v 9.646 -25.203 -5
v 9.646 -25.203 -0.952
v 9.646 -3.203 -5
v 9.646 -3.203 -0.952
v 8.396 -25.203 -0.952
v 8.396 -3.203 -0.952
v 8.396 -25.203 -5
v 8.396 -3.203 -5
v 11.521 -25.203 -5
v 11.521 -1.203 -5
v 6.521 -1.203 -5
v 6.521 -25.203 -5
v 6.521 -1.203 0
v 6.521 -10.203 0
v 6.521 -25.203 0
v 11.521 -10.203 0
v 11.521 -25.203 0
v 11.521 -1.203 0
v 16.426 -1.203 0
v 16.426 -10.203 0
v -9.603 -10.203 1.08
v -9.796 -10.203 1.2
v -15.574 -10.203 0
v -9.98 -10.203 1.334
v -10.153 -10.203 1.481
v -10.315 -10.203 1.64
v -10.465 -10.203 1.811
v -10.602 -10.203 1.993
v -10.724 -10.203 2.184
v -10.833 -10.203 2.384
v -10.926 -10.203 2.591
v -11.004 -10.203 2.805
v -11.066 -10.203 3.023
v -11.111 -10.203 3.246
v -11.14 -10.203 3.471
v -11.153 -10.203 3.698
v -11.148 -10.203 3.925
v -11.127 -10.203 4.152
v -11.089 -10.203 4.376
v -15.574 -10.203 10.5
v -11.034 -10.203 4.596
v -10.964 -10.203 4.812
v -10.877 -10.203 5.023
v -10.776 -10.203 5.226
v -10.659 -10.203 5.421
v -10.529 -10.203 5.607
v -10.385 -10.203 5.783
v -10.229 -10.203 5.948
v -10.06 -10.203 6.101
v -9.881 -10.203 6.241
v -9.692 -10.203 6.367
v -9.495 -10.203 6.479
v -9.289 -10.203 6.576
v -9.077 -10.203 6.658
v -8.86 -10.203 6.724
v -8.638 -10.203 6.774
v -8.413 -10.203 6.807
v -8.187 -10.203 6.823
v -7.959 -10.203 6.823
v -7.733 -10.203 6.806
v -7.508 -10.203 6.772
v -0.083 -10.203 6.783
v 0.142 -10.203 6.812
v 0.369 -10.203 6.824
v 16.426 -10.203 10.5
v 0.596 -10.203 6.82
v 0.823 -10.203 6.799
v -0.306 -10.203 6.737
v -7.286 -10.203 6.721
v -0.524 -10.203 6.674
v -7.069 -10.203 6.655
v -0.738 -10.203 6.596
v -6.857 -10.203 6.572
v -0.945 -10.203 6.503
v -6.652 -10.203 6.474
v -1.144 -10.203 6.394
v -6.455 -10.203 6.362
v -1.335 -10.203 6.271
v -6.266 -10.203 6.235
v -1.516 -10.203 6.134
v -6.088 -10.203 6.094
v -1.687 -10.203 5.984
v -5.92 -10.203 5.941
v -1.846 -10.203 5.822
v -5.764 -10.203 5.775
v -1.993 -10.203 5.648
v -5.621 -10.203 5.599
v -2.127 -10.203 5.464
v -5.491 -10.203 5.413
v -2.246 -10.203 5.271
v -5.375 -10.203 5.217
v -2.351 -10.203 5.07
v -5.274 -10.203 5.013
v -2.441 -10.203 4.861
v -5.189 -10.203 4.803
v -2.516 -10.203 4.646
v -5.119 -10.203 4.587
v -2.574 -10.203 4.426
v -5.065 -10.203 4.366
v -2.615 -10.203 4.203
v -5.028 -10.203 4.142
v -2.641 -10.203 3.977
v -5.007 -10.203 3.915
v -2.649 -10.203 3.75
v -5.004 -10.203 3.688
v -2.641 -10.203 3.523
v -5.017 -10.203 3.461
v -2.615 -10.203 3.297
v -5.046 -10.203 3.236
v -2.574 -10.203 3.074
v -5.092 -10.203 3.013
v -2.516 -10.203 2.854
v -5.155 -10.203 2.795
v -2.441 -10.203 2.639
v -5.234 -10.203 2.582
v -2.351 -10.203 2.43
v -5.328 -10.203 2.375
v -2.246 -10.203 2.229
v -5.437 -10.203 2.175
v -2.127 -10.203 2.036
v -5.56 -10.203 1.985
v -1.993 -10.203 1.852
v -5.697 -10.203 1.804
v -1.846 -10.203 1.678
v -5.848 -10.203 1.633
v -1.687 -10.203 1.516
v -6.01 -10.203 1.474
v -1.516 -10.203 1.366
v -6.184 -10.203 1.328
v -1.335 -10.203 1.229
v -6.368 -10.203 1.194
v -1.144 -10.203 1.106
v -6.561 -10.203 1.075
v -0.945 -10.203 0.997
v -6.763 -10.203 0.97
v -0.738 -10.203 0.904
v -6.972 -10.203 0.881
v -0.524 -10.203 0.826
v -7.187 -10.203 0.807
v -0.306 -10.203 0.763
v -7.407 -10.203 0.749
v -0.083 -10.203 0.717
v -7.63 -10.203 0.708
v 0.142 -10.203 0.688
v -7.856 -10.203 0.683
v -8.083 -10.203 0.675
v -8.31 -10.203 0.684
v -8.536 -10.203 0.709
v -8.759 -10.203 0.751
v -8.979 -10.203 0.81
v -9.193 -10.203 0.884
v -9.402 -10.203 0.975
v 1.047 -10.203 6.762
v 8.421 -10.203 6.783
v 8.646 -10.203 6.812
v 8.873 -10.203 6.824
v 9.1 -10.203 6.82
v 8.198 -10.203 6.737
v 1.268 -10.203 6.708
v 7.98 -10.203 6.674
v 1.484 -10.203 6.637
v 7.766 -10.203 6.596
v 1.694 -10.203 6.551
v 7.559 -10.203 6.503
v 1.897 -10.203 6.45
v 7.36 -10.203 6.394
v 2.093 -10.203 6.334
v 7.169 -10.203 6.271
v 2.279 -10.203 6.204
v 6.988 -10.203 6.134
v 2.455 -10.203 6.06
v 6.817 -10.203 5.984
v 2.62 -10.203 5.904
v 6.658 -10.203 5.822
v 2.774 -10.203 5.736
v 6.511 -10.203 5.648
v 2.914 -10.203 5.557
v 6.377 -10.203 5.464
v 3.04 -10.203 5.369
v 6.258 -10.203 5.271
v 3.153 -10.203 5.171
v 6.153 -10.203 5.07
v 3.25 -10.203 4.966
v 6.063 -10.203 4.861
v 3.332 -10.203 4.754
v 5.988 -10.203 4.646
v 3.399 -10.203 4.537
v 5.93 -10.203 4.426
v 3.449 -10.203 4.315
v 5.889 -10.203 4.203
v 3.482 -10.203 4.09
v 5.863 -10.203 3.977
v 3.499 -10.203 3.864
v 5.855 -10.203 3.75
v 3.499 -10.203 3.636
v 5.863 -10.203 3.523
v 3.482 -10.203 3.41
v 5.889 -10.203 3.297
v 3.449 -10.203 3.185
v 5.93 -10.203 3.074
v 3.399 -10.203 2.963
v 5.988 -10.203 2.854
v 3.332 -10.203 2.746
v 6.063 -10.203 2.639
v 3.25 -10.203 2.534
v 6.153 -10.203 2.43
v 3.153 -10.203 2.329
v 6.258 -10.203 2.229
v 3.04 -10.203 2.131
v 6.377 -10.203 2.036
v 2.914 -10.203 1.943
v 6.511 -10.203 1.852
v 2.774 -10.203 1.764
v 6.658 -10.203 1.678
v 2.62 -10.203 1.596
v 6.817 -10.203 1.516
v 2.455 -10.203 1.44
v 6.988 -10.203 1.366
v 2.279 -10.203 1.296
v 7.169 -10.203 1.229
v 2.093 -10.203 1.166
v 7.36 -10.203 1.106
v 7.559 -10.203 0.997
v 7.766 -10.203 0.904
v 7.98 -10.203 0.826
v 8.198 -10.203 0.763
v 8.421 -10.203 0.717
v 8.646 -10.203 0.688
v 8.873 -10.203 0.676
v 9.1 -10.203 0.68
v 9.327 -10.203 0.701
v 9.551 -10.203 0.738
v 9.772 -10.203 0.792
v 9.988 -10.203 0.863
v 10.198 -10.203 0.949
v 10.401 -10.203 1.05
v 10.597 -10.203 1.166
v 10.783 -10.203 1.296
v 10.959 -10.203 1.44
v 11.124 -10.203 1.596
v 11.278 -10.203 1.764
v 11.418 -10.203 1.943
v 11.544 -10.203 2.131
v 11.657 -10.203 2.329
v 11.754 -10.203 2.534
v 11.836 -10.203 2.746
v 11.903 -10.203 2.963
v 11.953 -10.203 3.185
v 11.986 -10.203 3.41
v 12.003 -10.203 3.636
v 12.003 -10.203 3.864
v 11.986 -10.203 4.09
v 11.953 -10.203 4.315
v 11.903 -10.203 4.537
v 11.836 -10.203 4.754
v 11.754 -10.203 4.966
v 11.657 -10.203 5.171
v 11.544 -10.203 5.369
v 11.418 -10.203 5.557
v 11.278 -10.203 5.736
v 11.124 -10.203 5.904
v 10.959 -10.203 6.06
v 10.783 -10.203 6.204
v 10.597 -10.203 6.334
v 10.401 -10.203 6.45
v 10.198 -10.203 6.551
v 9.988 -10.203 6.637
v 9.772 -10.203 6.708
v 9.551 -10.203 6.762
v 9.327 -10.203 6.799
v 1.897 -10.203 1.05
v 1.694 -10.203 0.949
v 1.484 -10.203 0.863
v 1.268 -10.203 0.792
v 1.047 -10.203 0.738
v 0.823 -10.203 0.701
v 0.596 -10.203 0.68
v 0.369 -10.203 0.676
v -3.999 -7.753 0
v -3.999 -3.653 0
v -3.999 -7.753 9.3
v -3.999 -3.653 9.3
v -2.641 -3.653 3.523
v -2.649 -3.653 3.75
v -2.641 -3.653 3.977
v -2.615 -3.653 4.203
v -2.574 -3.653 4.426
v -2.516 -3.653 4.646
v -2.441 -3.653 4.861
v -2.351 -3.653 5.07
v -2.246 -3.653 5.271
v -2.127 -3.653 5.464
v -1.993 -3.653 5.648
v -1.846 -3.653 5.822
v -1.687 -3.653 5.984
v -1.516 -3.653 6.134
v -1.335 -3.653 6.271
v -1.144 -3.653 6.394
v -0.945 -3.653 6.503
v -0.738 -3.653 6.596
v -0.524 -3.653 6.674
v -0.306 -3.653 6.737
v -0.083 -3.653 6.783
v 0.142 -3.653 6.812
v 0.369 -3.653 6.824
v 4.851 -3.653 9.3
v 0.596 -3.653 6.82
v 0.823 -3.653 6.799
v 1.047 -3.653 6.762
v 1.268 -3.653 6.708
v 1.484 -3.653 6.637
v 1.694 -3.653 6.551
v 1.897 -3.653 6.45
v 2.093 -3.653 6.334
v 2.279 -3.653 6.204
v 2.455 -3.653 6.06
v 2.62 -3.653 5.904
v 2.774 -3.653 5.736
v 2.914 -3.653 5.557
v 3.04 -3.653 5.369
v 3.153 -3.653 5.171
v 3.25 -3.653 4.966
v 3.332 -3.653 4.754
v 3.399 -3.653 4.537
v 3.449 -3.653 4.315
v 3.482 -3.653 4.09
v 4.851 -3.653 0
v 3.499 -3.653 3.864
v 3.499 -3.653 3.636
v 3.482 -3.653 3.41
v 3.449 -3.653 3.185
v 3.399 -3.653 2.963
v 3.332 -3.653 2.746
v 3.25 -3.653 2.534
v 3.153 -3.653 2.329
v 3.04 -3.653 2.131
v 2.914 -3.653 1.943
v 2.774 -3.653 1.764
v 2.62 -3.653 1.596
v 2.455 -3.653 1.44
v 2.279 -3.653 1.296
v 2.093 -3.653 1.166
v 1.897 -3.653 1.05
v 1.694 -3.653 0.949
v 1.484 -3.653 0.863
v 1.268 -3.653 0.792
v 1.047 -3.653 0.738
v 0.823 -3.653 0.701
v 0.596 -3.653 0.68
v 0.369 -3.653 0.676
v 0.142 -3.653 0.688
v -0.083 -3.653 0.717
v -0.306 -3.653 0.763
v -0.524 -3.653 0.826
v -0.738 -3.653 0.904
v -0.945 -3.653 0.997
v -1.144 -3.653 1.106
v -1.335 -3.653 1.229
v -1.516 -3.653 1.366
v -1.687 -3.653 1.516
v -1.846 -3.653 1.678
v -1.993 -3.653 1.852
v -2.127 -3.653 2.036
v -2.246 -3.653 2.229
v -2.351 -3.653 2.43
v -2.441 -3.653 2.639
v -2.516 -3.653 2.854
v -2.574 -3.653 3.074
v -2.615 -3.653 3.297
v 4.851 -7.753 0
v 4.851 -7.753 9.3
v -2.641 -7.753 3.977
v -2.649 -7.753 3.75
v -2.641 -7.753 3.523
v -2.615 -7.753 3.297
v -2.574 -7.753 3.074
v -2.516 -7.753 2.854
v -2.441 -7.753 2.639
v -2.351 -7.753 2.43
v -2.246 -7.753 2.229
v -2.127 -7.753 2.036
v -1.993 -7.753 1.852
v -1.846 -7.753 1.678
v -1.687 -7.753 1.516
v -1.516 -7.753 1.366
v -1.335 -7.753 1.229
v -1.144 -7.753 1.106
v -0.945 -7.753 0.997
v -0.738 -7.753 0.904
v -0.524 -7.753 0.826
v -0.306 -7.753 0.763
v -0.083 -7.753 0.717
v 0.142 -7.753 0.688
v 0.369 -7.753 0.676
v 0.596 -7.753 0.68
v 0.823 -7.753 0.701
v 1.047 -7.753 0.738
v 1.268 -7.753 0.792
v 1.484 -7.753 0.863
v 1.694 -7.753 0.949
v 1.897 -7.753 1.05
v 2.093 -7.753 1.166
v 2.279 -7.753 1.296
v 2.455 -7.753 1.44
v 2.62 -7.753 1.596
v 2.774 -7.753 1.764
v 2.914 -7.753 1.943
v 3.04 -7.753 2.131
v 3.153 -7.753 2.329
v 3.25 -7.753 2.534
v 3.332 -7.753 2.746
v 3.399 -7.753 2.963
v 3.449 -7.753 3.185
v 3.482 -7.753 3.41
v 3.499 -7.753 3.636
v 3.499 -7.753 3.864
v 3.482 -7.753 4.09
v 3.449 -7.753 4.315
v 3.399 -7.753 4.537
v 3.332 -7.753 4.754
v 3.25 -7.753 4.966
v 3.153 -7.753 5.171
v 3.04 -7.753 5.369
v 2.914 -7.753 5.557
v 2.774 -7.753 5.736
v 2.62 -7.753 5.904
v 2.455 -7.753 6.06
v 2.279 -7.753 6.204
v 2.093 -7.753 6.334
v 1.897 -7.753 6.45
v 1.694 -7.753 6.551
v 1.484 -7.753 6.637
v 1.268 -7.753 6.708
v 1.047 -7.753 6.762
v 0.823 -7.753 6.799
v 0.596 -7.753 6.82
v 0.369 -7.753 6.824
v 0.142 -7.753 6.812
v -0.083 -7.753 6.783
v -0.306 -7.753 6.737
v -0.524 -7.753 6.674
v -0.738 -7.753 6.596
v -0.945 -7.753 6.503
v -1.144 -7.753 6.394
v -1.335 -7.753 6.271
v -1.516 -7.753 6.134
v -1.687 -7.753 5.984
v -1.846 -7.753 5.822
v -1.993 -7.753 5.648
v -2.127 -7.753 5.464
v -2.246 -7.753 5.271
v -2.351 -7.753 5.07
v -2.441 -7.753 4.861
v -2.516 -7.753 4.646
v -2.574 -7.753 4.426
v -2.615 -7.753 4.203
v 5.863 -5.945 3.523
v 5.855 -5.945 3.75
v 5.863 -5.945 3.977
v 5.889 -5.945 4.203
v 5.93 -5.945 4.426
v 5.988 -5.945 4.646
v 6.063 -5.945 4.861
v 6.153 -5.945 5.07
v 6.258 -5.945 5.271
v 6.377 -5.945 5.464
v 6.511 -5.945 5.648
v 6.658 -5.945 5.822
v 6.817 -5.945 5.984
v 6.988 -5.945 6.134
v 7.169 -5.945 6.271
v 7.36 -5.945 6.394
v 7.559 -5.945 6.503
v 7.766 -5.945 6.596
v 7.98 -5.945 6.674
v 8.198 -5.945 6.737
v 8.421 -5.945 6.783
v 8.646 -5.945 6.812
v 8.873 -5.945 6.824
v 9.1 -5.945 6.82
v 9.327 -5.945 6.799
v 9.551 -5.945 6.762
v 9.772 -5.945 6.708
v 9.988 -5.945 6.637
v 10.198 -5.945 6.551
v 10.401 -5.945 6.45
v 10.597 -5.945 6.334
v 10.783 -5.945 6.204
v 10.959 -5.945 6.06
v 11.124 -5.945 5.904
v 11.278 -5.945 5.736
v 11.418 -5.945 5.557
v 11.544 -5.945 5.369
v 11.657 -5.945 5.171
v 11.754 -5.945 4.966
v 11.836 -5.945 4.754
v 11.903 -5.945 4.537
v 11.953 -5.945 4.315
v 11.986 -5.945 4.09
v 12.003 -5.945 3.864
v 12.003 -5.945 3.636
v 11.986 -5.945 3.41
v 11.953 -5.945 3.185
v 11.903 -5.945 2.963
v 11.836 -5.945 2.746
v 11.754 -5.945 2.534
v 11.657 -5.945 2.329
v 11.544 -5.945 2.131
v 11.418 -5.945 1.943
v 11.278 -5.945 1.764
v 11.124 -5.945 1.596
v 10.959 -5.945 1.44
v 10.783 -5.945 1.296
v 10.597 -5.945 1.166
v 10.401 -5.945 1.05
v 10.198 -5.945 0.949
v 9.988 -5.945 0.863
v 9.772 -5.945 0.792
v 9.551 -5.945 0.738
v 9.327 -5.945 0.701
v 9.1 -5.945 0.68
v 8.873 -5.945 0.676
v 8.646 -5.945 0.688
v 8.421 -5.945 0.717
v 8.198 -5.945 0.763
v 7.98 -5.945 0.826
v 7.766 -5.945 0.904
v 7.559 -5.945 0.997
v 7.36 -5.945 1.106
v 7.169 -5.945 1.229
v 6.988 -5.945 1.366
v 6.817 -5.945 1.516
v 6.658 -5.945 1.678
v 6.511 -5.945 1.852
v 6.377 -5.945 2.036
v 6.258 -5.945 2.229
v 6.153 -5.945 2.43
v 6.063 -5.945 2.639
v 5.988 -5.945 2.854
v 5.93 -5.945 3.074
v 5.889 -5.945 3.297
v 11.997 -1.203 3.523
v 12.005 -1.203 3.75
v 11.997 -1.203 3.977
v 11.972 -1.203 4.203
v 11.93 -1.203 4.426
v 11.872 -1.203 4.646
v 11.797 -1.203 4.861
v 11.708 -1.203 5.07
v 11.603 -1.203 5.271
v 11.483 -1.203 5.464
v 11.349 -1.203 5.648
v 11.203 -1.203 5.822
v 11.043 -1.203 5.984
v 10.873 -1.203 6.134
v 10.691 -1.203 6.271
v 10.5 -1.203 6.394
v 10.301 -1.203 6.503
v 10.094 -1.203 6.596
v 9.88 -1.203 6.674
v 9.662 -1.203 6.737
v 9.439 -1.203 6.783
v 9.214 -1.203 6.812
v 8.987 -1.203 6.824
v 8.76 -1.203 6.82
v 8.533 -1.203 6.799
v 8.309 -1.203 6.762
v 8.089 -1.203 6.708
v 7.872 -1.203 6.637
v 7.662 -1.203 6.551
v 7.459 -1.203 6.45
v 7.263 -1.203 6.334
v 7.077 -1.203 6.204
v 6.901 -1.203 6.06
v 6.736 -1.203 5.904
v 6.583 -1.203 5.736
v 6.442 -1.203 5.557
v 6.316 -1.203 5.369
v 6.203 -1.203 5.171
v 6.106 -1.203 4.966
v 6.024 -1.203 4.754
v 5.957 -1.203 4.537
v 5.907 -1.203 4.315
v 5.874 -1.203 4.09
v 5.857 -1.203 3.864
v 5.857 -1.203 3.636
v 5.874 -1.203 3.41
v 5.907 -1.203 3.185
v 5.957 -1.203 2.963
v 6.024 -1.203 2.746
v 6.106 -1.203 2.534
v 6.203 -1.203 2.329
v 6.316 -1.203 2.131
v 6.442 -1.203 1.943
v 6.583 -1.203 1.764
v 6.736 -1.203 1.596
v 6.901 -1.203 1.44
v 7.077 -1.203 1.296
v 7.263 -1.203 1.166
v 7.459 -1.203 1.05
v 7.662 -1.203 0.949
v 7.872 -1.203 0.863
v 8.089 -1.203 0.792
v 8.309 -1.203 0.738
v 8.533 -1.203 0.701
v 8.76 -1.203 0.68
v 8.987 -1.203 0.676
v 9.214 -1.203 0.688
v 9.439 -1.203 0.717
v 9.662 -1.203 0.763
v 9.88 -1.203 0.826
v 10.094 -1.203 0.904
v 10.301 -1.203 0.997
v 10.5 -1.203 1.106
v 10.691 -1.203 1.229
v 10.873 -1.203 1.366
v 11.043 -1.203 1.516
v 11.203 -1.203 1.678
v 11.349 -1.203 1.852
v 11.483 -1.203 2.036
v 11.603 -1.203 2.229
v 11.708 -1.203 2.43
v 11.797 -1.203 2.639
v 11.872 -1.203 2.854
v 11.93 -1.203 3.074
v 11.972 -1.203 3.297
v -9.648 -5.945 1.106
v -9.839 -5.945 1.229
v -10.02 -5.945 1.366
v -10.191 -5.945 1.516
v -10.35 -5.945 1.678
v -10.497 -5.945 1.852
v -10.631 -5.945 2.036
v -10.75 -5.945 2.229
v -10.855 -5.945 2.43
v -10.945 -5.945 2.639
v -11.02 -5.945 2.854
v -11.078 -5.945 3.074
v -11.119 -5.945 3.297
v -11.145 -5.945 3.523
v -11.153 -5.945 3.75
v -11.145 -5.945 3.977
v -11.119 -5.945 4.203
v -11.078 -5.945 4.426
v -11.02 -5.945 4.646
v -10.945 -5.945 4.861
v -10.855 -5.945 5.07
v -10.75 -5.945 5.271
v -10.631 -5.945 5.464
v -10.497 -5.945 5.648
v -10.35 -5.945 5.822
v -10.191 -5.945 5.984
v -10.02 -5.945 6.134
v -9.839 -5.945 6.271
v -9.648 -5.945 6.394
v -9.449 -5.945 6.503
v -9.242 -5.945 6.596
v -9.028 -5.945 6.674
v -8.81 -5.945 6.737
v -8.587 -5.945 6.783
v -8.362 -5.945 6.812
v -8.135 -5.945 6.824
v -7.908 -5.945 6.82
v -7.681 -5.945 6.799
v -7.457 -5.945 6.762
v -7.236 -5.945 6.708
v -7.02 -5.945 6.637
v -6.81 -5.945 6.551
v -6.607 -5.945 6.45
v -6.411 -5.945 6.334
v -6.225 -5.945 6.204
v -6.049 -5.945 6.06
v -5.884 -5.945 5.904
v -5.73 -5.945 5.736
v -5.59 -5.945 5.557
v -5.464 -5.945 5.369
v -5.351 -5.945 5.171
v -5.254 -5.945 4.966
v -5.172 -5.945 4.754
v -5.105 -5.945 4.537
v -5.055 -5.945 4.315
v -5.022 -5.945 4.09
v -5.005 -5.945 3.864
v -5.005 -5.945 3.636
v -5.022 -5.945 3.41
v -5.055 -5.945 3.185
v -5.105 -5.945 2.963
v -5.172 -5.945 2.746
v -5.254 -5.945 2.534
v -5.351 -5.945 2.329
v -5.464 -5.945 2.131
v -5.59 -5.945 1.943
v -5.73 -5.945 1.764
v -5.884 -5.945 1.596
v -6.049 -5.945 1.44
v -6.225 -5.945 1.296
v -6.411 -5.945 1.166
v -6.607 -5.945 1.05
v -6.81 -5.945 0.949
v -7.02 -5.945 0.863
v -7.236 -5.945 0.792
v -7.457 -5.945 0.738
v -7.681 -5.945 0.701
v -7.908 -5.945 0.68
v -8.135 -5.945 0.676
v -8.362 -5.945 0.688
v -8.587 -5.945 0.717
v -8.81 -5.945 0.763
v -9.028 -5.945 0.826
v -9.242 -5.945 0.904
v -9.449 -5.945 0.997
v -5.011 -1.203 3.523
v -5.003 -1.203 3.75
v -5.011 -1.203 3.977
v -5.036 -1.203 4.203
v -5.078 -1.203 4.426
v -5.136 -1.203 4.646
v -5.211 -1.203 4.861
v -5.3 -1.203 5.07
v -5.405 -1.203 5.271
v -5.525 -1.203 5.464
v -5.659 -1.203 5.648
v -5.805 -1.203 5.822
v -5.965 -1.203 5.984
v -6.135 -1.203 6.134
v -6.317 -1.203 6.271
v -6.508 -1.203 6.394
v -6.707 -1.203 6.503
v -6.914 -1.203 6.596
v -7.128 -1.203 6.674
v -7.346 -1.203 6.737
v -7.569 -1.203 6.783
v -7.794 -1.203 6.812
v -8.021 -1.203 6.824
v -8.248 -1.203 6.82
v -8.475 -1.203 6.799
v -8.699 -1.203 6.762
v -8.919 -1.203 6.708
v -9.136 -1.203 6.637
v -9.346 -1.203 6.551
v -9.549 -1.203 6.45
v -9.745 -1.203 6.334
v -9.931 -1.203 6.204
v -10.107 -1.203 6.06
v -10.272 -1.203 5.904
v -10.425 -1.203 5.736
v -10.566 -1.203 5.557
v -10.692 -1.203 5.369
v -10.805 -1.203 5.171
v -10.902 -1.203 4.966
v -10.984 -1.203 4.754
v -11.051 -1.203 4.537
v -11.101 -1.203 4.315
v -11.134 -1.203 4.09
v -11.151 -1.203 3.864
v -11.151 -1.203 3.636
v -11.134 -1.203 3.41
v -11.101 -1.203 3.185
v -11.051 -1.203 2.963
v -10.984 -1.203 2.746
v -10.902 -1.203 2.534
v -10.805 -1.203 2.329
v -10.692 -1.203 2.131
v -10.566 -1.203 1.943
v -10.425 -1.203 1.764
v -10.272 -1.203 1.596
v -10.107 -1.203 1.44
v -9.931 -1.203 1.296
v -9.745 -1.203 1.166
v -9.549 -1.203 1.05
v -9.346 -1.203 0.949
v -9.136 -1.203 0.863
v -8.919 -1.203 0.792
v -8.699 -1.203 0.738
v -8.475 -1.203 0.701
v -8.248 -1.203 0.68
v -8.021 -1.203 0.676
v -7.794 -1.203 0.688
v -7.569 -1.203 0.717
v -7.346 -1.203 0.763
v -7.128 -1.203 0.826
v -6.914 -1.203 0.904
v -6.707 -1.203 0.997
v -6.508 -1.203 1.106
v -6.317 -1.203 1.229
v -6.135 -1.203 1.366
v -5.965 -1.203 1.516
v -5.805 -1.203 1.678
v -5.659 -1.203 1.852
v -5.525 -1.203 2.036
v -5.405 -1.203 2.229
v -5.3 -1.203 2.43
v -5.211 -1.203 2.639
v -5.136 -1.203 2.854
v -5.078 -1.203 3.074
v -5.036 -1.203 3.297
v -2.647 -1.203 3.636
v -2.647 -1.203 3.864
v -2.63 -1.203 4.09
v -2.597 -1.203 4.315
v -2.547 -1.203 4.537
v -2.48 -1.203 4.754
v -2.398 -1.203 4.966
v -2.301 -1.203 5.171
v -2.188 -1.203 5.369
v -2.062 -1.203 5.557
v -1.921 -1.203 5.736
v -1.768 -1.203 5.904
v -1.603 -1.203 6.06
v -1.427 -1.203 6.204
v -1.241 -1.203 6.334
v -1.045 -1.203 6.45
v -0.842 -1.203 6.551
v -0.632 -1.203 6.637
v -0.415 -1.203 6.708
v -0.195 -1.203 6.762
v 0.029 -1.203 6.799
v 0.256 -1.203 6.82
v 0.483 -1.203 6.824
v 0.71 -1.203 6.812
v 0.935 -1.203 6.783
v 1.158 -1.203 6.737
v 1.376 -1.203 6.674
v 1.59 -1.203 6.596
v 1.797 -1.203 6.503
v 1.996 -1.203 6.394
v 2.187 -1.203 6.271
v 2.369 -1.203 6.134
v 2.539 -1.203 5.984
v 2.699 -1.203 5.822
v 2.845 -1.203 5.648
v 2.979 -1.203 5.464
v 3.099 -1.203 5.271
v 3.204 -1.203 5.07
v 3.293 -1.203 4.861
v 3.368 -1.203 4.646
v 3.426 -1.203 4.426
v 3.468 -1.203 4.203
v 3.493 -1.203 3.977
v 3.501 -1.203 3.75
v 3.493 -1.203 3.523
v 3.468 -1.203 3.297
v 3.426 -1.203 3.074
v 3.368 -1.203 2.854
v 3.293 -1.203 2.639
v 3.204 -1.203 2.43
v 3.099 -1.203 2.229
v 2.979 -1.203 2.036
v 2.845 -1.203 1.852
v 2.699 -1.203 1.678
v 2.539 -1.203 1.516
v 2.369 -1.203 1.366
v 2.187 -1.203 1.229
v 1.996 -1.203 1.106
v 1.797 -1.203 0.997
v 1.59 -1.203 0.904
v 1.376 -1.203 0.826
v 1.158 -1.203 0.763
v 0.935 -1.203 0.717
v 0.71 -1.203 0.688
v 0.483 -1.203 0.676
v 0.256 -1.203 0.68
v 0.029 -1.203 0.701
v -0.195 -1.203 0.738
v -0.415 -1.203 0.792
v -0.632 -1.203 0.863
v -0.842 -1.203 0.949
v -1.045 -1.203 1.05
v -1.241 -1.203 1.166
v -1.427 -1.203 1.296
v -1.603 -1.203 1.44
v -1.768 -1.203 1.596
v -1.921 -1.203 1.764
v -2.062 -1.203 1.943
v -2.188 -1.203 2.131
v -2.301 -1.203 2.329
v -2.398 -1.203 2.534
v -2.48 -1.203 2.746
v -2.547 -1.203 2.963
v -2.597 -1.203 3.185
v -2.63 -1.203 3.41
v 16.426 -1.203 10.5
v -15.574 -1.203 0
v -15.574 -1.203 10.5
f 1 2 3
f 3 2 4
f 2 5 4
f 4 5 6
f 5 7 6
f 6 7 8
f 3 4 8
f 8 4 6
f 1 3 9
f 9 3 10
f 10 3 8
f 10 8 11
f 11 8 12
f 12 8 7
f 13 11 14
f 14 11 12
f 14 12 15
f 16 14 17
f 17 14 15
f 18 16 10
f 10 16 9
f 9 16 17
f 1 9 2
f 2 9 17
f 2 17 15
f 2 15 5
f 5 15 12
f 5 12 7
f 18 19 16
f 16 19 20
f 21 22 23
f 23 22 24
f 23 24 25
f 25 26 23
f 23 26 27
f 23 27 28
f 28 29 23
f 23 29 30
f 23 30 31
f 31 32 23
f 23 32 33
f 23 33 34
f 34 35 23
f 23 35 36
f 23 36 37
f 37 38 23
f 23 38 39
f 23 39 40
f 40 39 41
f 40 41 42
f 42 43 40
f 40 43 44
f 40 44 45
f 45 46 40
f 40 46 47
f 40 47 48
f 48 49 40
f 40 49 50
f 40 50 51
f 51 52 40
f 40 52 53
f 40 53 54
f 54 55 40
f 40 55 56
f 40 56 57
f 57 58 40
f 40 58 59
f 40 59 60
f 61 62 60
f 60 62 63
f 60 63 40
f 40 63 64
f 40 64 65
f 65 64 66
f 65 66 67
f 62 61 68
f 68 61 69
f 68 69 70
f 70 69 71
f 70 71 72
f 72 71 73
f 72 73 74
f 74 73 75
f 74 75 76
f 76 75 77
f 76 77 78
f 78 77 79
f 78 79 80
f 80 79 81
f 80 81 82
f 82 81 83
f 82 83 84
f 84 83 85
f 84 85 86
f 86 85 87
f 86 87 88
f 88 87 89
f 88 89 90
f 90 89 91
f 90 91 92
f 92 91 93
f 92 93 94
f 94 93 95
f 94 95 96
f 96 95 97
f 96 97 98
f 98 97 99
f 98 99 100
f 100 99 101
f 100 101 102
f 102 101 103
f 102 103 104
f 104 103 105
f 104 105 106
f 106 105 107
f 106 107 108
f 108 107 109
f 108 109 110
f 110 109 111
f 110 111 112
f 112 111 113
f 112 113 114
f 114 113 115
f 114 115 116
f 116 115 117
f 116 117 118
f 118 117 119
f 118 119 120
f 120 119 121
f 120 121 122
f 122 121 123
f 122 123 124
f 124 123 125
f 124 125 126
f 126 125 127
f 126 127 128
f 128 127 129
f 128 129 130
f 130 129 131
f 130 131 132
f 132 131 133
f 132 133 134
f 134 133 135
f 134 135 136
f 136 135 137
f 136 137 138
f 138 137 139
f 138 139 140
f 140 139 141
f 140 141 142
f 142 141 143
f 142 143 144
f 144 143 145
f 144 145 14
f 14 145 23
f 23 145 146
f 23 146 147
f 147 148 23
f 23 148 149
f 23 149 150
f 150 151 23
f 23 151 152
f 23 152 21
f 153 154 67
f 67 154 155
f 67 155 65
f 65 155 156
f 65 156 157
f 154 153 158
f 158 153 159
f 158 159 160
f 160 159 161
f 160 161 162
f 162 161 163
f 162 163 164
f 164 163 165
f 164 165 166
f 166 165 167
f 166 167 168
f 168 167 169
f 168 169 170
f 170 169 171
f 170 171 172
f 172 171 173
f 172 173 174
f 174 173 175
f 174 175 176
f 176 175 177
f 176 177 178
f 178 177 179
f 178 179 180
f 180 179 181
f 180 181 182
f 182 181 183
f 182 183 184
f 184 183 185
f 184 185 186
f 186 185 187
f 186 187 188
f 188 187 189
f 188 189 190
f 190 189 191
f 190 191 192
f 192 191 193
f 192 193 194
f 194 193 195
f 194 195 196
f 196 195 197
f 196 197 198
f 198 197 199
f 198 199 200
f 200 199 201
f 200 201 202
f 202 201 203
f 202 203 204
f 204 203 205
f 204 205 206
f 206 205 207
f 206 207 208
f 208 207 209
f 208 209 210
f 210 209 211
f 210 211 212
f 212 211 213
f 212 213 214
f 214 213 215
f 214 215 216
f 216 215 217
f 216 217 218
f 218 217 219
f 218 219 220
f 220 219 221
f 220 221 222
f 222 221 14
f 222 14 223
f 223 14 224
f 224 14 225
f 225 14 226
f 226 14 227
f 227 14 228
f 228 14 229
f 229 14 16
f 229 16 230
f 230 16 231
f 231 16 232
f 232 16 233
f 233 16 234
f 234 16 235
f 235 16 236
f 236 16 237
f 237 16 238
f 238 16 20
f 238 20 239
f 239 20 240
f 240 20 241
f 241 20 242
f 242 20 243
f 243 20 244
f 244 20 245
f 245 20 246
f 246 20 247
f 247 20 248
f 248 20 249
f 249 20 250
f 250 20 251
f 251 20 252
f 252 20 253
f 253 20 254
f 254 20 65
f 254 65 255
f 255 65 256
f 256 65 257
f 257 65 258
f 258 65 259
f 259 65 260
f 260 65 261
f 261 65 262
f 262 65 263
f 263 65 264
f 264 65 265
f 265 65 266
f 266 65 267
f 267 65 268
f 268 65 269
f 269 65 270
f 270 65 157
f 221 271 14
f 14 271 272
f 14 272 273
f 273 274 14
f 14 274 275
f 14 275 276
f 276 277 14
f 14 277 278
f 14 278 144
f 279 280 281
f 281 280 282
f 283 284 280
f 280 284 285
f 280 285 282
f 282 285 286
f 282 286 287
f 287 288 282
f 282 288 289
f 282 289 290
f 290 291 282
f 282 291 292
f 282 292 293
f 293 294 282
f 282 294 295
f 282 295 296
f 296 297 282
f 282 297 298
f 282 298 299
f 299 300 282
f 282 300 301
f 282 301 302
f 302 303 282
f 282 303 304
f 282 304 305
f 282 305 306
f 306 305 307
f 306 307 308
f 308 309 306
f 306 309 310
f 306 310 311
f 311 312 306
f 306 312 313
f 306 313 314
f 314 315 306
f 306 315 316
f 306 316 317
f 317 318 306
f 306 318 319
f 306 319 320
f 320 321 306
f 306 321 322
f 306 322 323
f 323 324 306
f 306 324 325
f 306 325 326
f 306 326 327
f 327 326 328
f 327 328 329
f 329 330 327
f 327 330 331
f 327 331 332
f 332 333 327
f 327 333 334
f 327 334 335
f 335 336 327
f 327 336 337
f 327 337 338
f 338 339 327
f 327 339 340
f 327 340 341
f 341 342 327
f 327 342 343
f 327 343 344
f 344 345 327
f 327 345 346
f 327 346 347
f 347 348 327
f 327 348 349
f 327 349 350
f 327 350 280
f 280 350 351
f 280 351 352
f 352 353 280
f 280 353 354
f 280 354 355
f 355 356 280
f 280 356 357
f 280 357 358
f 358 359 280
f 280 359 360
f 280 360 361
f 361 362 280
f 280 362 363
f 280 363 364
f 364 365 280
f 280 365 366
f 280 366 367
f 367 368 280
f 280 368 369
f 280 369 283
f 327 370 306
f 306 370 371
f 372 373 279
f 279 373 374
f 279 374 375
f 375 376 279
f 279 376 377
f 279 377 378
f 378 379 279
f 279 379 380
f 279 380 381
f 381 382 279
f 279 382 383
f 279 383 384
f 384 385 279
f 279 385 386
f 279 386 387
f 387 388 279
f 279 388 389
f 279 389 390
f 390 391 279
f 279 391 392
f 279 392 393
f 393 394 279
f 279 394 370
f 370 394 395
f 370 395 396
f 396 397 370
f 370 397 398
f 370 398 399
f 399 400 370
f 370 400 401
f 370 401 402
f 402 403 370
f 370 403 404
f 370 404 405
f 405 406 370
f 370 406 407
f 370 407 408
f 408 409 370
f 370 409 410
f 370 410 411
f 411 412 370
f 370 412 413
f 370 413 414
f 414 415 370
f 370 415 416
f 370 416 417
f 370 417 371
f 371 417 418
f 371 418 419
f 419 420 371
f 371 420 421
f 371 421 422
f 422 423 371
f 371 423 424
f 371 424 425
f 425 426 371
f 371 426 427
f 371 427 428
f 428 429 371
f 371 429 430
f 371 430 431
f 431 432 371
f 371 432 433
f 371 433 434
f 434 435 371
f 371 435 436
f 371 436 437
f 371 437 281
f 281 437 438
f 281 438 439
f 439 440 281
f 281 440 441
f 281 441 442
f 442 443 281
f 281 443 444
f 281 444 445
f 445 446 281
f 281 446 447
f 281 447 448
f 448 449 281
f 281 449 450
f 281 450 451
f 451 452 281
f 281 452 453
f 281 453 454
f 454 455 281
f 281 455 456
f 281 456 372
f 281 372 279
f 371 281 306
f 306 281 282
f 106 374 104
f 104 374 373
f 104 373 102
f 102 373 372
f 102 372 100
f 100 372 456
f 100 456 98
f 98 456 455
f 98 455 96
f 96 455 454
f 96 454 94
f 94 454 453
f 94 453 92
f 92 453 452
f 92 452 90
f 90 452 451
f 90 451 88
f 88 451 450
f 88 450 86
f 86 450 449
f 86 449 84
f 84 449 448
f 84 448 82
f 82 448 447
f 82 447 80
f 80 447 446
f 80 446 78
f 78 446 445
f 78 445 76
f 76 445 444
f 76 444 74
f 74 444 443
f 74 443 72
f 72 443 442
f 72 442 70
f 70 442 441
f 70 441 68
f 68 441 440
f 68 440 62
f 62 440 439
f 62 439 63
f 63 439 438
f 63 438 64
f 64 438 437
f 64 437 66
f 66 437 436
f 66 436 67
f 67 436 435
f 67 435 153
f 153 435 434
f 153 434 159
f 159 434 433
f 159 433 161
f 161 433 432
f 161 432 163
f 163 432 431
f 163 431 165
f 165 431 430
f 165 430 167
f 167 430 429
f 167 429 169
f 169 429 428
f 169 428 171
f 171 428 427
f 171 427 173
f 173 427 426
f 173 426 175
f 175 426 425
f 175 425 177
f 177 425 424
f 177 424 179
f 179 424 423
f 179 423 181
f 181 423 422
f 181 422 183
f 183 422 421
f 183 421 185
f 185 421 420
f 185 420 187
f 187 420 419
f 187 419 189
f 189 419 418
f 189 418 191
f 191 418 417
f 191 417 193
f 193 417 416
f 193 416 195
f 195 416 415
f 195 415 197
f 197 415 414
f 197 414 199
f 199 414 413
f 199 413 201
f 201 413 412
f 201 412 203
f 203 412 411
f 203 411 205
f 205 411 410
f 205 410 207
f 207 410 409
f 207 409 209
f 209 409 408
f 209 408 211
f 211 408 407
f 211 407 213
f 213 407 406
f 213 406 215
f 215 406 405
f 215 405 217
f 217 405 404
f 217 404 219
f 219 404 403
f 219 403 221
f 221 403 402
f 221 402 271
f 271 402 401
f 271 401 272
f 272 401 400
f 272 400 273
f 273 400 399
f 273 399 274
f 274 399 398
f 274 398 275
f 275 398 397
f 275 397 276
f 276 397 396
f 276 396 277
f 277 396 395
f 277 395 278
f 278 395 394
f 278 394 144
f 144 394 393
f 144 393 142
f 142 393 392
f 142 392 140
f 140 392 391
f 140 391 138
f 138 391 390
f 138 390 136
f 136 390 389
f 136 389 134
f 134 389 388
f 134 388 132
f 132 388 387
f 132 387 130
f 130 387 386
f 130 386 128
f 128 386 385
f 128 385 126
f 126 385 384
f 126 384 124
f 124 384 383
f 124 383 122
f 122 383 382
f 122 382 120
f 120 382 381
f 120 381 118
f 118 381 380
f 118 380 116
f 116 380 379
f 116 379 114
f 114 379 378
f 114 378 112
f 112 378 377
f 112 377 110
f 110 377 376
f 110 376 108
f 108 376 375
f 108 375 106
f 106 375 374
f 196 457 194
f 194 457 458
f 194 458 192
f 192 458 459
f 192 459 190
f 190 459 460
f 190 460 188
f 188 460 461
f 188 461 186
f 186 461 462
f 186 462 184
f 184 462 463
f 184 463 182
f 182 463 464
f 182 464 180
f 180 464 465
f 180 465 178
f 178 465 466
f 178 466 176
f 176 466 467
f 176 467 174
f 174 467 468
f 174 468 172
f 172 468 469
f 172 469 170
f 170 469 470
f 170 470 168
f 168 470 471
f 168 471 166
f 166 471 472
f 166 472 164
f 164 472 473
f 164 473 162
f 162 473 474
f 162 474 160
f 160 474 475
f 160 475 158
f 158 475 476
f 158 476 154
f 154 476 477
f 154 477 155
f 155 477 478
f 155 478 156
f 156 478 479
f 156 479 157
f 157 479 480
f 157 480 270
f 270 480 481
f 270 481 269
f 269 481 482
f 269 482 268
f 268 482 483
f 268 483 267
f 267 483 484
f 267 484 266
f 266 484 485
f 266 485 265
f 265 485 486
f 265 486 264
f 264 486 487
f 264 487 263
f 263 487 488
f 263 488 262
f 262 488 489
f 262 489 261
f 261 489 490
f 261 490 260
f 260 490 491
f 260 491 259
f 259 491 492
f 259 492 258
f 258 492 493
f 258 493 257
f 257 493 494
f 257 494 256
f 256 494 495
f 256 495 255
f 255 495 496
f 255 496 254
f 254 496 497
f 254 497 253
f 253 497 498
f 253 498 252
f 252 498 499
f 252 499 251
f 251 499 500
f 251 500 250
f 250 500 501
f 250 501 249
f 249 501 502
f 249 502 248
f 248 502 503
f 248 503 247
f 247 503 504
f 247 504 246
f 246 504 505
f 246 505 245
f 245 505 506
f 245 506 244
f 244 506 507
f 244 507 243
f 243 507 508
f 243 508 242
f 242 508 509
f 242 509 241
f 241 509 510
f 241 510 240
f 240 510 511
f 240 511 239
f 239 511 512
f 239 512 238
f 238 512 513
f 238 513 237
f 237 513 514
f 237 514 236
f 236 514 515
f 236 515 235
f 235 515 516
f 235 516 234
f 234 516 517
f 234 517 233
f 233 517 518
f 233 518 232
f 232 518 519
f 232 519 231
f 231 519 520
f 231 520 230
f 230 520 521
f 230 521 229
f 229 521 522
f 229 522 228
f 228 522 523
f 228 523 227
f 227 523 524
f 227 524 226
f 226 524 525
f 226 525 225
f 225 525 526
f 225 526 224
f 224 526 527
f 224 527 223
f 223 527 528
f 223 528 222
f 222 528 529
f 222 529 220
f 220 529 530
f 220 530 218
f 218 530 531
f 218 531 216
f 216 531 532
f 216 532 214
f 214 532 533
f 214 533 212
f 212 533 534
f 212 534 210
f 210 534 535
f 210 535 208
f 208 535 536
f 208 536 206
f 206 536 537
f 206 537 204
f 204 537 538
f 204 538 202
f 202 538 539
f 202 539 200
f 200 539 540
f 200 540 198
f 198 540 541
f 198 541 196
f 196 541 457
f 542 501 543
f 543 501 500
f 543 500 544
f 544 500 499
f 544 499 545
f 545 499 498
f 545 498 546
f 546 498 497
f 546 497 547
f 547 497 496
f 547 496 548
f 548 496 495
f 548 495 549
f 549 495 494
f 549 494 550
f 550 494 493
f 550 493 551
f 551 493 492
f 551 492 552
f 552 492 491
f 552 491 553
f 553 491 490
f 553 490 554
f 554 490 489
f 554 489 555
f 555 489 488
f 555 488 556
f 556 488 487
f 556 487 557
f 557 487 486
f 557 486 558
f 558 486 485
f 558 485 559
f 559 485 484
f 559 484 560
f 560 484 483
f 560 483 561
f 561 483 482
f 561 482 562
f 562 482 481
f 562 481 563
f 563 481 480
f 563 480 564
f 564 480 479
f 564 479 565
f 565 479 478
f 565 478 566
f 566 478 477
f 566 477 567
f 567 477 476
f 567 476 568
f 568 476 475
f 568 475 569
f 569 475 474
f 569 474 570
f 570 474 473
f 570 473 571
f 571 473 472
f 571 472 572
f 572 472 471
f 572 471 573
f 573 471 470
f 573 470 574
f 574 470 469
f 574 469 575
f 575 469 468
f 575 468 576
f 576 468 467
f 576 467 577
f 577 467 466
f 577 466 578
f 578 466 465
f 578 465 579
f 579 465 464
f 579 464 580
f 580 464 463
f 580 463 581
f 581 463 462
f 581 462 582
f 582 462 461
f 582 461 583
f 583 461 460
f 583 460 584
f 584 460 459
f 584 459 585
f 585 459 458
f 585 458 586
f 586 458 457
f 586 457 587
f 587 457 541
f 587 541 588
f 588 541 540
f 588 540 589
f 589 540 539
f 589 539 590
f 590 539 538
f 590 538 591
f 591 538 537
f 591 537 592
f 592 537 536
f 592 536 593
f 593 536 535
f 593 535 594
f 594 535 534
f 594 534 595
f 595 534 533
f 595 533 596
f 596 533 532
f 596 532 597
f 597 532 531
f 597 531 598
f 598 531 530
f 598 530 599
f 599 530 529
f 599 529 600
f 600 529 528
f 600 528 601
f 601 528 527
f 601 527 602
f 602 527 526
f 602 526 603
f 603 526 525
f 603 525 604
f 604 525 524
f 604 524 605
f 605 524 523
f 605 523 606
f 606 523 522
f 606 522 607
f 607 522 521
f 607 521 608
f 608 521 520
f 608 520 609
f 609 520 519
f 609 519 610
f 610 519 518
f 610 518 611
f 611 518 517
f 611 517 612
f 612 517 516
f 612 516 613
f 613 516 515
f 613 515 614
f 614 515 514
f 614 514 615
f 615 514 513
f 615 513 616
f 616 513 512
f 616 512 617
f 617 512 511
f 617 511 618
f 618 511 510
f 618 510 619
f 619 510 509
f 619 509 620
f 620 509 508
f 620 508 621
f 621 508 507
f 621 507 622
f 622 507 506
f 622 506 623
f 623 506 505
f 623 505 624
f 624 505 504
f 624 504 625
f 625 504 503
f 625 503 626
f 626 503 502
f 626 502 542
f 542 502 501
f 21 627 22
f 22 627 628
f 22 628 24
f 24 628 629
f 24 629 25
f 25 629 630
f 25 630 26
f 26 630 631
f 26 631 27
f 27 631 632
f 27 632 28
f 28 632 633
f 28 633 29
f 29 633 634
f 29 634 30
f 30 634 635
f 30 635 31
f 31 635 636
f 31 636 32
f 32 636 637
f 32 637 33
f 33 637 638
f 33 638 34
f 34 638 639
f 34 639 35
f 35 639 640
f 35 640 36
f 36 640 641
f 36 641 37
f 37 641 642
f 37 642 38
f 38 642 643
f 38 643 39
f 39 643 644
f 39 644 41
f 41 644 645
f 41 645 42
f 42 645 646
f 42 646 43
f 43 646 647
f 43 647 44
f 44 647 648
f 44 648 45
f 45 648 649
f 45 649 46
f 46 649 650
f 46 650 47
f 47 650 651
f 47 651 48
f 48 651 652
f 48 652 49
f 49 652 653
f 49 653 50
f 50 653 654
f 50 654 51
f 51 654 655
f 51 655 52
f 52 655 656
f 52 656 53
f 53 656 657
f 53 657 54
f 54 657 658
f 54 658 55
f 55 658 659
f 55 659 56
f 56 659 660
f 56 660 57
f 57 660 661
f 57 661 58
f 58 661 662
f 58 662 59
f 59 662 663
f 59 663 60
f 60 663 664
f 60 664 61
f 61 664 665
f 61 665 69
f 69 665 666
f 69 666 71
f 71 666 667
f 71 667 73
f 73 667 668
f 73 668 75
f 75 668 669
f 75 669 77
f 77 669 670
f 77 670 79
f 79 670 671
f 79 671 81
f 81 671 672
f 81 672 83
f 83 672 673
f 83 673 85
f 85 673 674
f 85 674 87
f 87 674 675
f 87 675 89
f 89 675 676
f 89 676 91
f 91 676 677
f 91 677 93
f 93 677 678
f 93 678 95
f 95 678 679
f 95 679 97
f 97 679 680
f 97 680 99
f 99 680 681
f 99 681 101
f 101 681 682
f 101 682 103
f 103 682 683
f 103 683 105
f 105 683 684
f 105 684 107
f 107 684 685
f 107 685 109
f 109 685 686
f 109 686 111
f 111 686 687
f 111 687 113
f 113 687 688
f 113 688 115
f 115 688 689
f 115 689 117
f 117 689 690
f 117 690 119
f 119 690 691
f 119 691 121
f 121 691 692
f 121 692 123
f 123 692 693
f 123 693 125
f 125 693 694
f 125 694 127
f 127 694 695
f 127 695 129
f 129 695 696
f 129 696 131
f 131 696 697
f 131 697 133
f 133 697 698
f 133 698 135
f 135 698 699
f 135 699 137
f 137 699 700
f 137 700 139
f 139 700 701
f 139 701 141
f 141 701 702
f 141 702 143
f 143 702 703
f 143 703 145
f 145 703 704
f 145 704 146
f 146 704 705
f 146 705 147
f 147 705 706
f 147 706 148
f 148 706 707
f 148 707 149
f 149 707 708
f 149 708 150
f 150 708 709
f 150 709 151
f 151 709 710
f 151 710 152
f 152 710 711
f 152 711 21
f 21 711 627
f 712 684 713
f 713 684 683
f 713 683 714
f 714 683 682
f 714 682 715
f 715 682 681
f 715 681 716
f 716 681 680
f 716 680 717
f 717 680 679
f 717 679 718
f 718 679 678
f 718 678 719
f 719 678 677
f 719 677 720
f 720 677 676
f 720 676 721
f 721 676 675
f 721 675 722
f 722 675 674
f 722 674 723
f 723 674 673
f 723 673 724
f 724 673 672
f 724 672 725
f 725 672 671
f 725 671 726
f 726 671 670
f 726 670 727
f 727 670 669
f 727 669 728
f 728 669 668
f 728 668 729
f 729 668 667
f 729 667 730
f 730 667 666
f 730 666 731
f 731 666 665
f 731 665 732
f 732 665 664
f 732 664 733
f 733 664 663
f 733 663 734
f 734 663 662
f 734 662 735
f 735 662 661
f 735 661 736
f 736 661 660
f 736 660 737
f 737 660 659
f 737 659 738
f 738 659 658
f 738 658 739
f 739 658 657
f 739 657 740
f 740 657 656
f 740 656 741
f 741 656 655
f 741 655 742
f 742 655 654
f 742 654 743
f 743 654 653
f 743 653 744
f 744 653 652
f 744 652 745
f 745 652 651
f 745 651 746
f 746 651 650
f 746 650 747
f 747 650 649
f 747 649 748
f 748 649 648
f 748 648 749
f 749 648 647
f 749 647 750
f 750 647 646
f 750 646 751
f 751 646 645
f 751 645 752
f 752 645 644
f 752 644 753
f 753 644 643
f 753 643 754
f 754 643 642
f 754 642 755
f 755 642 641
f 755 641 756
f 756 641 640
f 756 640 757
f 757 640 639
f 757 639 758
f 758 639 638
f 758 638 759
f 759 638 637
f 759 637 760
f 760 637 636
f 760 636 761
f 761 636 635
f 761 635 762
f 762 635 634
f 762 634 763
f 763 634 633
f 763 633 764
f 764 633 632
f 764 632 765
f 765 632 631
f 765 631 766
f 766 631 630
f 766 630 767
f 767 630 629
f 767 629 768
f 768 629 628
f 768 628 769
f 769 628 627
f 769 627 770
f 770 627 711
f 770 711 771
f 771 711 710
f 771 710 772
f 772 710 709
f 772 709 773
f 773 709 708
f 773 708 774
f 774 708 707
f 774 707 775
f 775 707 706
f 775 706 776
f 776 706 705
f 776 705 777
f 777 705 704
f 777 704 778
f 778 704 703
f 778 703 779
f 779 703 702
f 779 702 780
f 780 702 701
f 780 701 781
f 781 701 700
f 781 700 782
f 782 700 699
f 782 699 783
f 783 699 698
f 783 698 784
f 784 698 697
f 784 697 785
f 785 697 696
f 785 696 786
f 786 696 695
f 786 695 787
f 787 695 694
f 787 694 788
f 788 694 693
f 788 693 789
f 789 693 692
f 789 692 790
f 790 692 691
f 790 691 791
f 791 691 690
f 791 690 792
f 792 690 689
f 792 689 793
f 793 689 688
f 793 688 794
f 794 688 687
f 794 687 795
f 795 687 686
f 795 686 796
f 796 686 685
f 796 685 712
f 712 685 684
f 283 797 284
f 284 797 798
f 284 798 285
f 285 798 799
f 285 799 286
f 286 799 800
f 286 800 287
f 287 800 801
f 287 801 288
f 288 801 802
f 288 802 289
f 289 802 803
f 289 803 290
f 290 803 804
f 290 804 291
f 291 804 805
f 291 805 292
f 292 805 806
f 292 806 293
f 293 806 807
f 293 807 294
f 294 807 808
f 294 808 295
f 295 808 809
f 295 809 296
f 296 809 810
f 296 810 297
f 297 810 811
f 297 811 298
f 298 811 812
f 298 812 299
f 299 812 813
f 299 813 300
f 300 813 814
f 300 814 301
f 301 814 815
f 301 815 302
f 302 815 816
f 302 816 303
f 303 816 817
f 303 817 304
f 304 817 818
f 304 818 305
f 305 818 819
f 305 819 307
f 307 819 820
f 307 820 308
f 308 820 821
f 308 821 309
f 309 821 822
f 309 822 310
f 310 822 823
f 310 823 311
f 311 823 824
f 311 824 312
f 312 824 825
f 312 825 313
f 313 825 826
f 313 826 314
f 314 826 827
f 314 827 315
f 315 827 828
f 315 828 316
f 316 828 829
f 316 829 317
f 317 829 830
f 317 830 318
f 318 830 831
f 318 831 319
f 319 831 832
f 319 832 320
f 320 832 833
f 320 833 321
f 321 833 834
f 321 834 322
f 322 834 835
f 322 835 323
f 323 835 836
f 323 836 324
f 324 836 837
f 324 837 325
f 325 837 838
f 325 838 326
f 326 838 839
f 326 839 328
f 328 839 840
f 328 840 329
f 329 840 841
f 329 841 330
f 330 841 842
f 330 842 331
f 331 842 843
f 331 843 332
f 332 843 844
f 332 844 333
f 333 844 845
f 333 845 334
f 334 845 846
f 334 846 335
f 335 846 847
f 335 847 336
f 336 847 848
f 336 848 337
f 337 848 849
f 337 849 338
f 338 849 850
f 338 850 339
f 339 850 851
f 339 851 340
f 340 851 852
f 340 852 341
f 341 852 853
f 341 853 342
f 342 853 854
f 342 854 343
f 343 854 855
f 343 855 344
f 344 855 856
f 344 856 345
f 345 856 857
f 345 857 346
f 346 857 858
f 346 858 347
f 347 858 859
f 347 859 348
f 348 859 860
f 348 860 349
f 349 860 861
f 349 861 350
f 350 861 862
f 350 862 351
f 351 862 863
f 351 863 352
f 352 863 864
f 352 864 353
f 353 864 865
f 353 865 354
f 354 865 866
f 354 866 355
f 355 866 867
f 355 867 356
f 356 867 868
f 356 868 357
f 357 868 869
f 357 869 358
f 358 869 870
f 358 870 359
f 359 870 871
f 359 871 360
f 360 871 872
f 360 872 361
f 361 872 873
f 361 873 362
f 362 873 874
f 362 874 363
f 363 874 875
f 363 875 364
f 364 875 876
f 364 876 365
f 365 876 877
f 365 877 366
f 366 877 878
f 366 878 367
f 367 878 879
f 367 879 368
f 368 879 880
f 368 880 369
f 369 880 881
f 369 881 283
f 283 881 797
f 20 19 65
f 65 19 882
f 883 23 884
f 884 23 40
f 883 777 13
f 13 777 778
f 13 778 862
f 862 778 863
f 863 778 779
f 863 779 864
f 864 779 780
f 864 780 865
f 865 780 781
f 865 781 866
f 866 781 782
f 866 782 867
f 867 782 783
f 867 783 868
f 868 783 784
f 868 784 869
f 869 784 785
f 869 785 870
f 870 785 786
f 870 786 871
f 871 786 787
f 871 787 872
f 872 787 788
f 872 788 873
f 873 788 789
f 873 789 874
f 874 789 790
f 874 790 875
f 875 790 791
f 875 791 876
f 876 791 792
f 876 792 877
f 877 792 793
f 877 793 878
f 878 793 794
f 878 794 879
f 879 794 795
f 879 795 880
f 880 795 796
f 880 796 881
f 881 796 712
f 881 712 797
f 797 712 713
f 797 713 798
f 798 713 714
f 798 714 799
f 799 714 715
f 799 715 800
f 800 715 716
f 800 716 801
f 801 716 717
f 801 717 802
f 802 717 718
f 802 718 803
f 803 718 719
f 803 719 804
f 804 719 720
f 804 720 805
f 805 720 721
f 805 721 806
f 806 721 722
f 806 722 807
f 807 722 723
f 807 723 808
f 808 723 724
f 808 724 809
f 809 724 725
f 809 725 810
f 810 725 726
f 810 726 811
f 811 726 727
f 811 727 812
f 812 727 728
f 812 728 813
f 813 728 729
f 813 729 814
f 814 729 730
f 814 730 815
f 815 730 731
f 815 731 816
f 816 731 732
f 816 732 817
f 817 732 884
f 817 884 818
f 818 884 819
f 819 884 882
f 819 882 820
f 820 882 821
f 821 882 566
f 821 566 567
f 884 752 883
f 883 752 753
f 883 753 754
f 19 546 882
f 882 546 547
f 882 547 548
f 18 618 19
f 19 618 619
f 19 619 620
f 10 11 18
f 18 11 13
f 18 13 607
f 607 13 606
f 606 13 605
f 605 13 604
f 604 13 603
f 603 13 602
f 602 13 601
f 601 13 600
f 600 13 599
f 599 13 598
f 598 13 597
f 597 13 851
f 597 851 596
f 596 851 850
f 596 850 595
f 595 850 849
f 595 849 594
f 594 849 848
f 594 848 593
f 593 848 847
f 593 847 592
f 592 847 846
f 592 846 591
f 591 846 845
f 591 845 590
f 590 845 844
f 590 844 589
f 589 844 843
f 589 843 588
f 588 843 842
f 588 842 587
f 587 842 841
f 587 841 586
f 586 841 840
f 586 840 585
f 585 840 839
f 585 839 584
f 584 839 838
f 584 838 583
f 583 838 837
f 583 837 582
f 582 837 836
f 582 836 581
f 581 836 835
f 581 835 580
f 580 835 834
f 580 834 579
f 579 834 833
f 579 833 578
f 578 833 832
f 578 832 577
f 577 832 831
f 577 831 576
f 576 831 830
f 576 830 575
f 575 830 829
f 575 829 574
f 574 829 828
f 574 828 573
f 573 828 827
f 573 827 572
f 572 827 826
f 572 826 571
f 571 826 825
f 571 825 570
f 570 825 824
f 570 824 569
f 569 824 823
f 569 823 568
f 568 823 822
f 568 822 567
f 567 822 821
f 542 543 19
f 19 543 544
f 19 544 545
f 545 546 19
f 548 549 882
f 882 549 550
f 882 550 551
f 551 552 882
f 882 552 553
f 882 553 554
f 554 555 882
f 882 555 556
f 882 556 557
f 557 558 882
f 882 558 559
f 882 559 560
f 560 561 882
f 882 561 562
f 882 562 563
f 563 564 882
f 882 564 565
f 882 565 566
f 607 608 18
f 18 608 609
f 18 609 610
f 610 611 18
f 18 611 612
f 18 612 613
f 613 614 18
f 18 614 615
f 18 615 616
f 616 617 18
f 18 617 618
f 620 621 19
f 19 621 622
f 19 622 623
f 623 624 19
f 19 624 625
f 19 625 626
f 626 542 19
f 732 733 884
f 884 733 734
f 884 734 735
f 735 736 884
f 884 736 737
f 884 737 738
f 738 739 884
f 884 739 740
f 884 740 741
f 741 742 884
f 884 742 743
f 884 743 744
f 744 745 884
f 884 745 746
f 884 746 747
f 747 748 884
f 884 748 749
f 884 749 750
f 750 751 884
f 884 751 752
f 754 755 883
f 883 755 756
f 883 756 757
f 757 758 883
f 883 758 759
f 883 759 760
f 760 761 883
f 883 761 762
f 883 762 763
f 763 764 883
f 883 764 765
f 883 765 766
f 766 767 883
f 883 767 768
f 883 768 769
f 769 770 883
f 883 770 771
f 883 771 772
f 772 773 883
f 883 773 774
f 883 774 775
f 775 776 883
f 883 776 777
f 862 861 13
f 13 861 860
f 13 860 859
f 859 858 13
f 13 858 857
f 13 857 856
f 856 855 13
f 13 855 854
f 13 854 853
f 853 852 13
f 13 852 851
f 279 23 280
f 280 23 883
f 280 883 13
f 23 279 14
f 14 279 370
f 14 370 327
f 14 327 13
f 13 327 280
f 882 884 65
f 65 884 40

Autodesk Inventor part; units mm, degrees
ref_plane "YZ Plane" through (0, 0, 0) normal (1, 0, 0) x (0, 1, 0)
ref_plane "XZ Plane" through (0, 0, 0) normal (0, 1, 0) x (-1, 0, 0)
ref_plane "XY Plane" through (0, 0, 0) normal (0, 0, 1) x (1, 0, 0)
sketch "Skizze1" plane through (0, 0, 0) normal (0, 0, 1) x (1, 0, 0)
  point P0 (0, 0)
sketch "Skizze2" plane through (0, 0, 0) normal (0, 0, 1) x (1, 0, 0)
  line L0 (-15.5739, -1.2028) -> (16.4261, -1.2028)
  line L1 (16.4261, -1.2028) -> (16.4261, -10.2028)
  line L2 (16.4261, -10.2028) -> (-15.5739, -10.2028)
  line L3 (-15.5739, -10.2028) -> (-15.5739, -1.2028)
  point P0 (0, 0)
  dimension "d0" = 32
  dimension "d1" = 9
extrude "Extrusion1" add sketch "Skizze2" along normal blind 10.5
sketch "Skizze3" plane through (16.4261, -10.2028, 0) normal (1, 0, 0) x (0, 0, -1)
  point P0 (0, 10.2028)
sketch "Skizze4" plane through (-15.5739, -1.2028, 0) normal (0, 1, 0) x (1, 0, 0)
  line L0 (0, 0) -> (0, -10.5) projected
  line L1 (0, 0) -> (32, 0) projected
  point P0 (15.5739, 0)
  point P1 (16, -3.75)
  point P2 (7.496, -3.75)
  point P3 (24.504, -3.75)
  dimension "d4" = 8.504
  dimension "d5" = 8.504
  dimension "d6" = 16
  dimension "d14" = 3.75
  dimension "d15" = 3.75
hole "Bohrung1" at (-8.0779, -1.2028, 3.75) at (8.9301, -1.2028, 3.75) at (0.4261, -1.2028, 3.75) direction (0, -1, 0) diameter 6.15 end through all
sketch "Skizze5" plane through (0, 0, 0) normal (0, 0, -1) x (-1, 0, 0)
  point P0 (0, 0)
sketch "Skizze6" plane through (0, 0, 0) normal (0, 0, -1) x (-1, 0, 0)
  line L0 (-4.8511, -7.7528) -> (3.9989, -7.7528)
  line L1 (3.9989, -7.7528) -> (3.9989, -3.6528)
  line L2 (3.9989, -3.6528) -> (-4.8511, -3.6528)
  line L3 (-4.8511, -3.6528) -> (-4.8511, -7.7528)
  line L4 (-16.4261, -10.2028) -> (15.5739, -10.2028) projected
  line L5 (15.5739, -10.2028) -> (15.5739, -1.2028) projected
  point P0 (0, 0)
  dimension "d16" = 8.85
  dimension "d17" = 4.1
  dimension "d18" = 2.45
  dimension "d19" = 11.575
extrude "Extrusion2" cut sketch "Skizze6" against normal blind 9.3
sketch "Skizze7" plane through (-15.5739, -10.2028, 0) normal (0, -1, 0) x (1, 0, 0)
  point P0 (15.5739, 0)
sketch "Skizze8" plane through (0, 0, 0) normal (0, 0, -1) x (-1, 0, 0)
  point P0 (0, 0)
sketch "Skizze9" plane through (-15.5739, -10.2028, 0) normal (0, -1, 0) x (1, 0, 0)
  line L0 (0, 0) -> (32, 0) projected
  line L1 (4.9045, 0) -> (9.9045, 0)
  line L2 (9.9045, 0) -> (9.9045, 1.2)
  line L3 (9.9045, 1.2) -> (4.9045, 1.2)
  line L4 (4.9045, 1.2) -> (4.9045, 0)
  point P0 (15.5739, 0)
  dimension "d22" = 1.2
  dimension "d23" = 5
extrude "Extrusion3" add sketch "Skizze9" along normal blind 15
sketch "Skizze10" plane through (0, 0, 0) normal (0, 0, -1) x (-1, 0, 0)
  line L0 (5.6694, -25.2028) -> (10.6694, -25.2028) projected
  line L1 (15.5739, -1.2028) -> (-16.4261, -1.2028) projected
  line L2 (10.6694, -25.2028) -> (5.6694, -25.2028)
  line L3 (5.6694, -25.2028) -> (5.6694, -1.2028)
  line L4 (5.6694, -1.2028) -> (10.6694, -1.2028)
  line L5 (10.6694, -1.2028) -> (10.6694, -25.2028)
  point P0 (0, 0)
  dimension "d26" = 5
extrude "Extrusion4" add sketch "Skizze10" along normal blind 5
sketch "Skizze11" plane through (-15.5739, -25.2028, 0) normal (0, -1, 0) x (1, 0, 0)
  line L0 (4.9045, -5) -> (9.9045, -5) projected
  line L1 (6.7795, -5) -> (8.0295, -5)
  line L2 (8.0295, -5) -> (8.0295, -0.9525)
  line L3 (8.0295, -0.9525) -> (6.7795, -0.9525)
  line L4 (6.7795, -0.9525) -> (6.7795, -5)
  line L5 (9.9045, 1.2) -> (9.9045, -5) projected
  point P0 (15.5739, 0)
  dimension "d29" = 1.25
  dimension "d30" = 1.875
  dimension "d31" = 4.0475
extrude "Extrusion5" cut sketch "Skizze11" against normal blind 22
sketch "Skizze12" plane through (-15.5739, -25.2028, 0) normal (0, -1, 0) x (1, 0, 0)
  line L0 (9.9045, 1.2) -> (9.9045, 0) projected
  line L1 (4.9045, 0) -> (4.9045, 1.2) projected
  line L2 (9.9045, 1.2) -> (4.9045, 1.2)
  line L3 (4.9045, 1.2) -> (4.9045, 0)
  line L4 (4.9045, 0) -> (9.9045, 0)
  line L5 (9.9045, 0) -> (9.9045, 1.2)
  point P0 (15.5739, 0)
extrude "Extrusion6" cut sketch "Skizze12" against normal blind 15
sketch "Skizze13" plane through (0, 0, 0) normal (0, 1, 0) x (-1, 0, 0)
  line L0 (5.6694, 0) -> (-16.4261, 0) projected
  line L1 (-6.5211, 0) -> (-11.5211, 0)
  line L2 (-11.5211, 0) -> (-11.5211, -5)
  line L3 (-11.5211, -5) -> (-6.5211, -5)
  line L4 (-6.5211, -5) -> (-6.5211, 0)
  line L5 (-16.4261, 0) -> (-16.4261, 10.5) projected
  point P0 (0, 0)
  dimension "d36" = 5
  dimension "d37" = 5
  dimension "d38" = 4.905
extrude "Extrusion7" add sketch "Skizze13" against normal blind 25.203
sketch "Skizze14" plane through (6.5211, 0, 0) normal (0, 0, 1) x (1, 0, 0)
  line L0 (5, -1.2028) -> (9.905, -1.2028) projected
  line L1 (0, 0) -> (0, -25.203) projected
  line L2 (5, -1.2028) -> (0, -1.2028)
  line L3 (0, -1.2028) -> (0, 0)
  line L4 (0, 0) -> (5, 0)
  line L5 (5, 0) -> (5, -1.2028)
  point P0 (-6.5211, 0)
extrude "Extrusion8" cut sketch "Skizze14" against normal blind 25
sketch "Skizze15" plane through (0, -25.203, 0) normal (0, -1, 0) x (1, 0, 0)
  line L0 (6.5211, -5) -> (11.5211, -5) projected
  line L1 (8.3961, -5) -> (9.6461, -5)
  line L2 (9.6461, -5) -> (9.6461, -0.952)
  line L3 (9.6461, -0.952) -> (8.3961, -0.952)
  line L4 (8.3961, -0.952) -> (8.3961, -5)
  line L5 (11.5211, -5) -> (11.5211, 0) projected
  point P0 (0, 0)
  dimension "d43" = 1.25
  dimension "d44" = 4.048
  dimension "d45" = 1.875
extrude "Extrusion9" cut sketch "Skizze15" against normal blind 22
sketch "Skizze16" plane through (-15.5739, -25.2028, 0) normal (0, -1, 0) x (1, 0, 0)
  line L0 (0, 0) -> (4.9045, 0) projected
  line L1 (4.9045, -5) -> (9.9045, -5) projected
  line L2 (4.9045, 0) -> (9.9045, 0)
  line L3 (9.9045, 0) -> (9.9045, -5)
  line L4 (9.9045, -5) -> (4.9045, -5)
  line L5 (4.9045, -5) -> (4.9045, 0)
  point P0 (15.5739, 0)
extrude "Extrusion10" cut sketch "Skizze16" against normal blind 25
properties part number "Objektträgerhalter 3a Neu"
